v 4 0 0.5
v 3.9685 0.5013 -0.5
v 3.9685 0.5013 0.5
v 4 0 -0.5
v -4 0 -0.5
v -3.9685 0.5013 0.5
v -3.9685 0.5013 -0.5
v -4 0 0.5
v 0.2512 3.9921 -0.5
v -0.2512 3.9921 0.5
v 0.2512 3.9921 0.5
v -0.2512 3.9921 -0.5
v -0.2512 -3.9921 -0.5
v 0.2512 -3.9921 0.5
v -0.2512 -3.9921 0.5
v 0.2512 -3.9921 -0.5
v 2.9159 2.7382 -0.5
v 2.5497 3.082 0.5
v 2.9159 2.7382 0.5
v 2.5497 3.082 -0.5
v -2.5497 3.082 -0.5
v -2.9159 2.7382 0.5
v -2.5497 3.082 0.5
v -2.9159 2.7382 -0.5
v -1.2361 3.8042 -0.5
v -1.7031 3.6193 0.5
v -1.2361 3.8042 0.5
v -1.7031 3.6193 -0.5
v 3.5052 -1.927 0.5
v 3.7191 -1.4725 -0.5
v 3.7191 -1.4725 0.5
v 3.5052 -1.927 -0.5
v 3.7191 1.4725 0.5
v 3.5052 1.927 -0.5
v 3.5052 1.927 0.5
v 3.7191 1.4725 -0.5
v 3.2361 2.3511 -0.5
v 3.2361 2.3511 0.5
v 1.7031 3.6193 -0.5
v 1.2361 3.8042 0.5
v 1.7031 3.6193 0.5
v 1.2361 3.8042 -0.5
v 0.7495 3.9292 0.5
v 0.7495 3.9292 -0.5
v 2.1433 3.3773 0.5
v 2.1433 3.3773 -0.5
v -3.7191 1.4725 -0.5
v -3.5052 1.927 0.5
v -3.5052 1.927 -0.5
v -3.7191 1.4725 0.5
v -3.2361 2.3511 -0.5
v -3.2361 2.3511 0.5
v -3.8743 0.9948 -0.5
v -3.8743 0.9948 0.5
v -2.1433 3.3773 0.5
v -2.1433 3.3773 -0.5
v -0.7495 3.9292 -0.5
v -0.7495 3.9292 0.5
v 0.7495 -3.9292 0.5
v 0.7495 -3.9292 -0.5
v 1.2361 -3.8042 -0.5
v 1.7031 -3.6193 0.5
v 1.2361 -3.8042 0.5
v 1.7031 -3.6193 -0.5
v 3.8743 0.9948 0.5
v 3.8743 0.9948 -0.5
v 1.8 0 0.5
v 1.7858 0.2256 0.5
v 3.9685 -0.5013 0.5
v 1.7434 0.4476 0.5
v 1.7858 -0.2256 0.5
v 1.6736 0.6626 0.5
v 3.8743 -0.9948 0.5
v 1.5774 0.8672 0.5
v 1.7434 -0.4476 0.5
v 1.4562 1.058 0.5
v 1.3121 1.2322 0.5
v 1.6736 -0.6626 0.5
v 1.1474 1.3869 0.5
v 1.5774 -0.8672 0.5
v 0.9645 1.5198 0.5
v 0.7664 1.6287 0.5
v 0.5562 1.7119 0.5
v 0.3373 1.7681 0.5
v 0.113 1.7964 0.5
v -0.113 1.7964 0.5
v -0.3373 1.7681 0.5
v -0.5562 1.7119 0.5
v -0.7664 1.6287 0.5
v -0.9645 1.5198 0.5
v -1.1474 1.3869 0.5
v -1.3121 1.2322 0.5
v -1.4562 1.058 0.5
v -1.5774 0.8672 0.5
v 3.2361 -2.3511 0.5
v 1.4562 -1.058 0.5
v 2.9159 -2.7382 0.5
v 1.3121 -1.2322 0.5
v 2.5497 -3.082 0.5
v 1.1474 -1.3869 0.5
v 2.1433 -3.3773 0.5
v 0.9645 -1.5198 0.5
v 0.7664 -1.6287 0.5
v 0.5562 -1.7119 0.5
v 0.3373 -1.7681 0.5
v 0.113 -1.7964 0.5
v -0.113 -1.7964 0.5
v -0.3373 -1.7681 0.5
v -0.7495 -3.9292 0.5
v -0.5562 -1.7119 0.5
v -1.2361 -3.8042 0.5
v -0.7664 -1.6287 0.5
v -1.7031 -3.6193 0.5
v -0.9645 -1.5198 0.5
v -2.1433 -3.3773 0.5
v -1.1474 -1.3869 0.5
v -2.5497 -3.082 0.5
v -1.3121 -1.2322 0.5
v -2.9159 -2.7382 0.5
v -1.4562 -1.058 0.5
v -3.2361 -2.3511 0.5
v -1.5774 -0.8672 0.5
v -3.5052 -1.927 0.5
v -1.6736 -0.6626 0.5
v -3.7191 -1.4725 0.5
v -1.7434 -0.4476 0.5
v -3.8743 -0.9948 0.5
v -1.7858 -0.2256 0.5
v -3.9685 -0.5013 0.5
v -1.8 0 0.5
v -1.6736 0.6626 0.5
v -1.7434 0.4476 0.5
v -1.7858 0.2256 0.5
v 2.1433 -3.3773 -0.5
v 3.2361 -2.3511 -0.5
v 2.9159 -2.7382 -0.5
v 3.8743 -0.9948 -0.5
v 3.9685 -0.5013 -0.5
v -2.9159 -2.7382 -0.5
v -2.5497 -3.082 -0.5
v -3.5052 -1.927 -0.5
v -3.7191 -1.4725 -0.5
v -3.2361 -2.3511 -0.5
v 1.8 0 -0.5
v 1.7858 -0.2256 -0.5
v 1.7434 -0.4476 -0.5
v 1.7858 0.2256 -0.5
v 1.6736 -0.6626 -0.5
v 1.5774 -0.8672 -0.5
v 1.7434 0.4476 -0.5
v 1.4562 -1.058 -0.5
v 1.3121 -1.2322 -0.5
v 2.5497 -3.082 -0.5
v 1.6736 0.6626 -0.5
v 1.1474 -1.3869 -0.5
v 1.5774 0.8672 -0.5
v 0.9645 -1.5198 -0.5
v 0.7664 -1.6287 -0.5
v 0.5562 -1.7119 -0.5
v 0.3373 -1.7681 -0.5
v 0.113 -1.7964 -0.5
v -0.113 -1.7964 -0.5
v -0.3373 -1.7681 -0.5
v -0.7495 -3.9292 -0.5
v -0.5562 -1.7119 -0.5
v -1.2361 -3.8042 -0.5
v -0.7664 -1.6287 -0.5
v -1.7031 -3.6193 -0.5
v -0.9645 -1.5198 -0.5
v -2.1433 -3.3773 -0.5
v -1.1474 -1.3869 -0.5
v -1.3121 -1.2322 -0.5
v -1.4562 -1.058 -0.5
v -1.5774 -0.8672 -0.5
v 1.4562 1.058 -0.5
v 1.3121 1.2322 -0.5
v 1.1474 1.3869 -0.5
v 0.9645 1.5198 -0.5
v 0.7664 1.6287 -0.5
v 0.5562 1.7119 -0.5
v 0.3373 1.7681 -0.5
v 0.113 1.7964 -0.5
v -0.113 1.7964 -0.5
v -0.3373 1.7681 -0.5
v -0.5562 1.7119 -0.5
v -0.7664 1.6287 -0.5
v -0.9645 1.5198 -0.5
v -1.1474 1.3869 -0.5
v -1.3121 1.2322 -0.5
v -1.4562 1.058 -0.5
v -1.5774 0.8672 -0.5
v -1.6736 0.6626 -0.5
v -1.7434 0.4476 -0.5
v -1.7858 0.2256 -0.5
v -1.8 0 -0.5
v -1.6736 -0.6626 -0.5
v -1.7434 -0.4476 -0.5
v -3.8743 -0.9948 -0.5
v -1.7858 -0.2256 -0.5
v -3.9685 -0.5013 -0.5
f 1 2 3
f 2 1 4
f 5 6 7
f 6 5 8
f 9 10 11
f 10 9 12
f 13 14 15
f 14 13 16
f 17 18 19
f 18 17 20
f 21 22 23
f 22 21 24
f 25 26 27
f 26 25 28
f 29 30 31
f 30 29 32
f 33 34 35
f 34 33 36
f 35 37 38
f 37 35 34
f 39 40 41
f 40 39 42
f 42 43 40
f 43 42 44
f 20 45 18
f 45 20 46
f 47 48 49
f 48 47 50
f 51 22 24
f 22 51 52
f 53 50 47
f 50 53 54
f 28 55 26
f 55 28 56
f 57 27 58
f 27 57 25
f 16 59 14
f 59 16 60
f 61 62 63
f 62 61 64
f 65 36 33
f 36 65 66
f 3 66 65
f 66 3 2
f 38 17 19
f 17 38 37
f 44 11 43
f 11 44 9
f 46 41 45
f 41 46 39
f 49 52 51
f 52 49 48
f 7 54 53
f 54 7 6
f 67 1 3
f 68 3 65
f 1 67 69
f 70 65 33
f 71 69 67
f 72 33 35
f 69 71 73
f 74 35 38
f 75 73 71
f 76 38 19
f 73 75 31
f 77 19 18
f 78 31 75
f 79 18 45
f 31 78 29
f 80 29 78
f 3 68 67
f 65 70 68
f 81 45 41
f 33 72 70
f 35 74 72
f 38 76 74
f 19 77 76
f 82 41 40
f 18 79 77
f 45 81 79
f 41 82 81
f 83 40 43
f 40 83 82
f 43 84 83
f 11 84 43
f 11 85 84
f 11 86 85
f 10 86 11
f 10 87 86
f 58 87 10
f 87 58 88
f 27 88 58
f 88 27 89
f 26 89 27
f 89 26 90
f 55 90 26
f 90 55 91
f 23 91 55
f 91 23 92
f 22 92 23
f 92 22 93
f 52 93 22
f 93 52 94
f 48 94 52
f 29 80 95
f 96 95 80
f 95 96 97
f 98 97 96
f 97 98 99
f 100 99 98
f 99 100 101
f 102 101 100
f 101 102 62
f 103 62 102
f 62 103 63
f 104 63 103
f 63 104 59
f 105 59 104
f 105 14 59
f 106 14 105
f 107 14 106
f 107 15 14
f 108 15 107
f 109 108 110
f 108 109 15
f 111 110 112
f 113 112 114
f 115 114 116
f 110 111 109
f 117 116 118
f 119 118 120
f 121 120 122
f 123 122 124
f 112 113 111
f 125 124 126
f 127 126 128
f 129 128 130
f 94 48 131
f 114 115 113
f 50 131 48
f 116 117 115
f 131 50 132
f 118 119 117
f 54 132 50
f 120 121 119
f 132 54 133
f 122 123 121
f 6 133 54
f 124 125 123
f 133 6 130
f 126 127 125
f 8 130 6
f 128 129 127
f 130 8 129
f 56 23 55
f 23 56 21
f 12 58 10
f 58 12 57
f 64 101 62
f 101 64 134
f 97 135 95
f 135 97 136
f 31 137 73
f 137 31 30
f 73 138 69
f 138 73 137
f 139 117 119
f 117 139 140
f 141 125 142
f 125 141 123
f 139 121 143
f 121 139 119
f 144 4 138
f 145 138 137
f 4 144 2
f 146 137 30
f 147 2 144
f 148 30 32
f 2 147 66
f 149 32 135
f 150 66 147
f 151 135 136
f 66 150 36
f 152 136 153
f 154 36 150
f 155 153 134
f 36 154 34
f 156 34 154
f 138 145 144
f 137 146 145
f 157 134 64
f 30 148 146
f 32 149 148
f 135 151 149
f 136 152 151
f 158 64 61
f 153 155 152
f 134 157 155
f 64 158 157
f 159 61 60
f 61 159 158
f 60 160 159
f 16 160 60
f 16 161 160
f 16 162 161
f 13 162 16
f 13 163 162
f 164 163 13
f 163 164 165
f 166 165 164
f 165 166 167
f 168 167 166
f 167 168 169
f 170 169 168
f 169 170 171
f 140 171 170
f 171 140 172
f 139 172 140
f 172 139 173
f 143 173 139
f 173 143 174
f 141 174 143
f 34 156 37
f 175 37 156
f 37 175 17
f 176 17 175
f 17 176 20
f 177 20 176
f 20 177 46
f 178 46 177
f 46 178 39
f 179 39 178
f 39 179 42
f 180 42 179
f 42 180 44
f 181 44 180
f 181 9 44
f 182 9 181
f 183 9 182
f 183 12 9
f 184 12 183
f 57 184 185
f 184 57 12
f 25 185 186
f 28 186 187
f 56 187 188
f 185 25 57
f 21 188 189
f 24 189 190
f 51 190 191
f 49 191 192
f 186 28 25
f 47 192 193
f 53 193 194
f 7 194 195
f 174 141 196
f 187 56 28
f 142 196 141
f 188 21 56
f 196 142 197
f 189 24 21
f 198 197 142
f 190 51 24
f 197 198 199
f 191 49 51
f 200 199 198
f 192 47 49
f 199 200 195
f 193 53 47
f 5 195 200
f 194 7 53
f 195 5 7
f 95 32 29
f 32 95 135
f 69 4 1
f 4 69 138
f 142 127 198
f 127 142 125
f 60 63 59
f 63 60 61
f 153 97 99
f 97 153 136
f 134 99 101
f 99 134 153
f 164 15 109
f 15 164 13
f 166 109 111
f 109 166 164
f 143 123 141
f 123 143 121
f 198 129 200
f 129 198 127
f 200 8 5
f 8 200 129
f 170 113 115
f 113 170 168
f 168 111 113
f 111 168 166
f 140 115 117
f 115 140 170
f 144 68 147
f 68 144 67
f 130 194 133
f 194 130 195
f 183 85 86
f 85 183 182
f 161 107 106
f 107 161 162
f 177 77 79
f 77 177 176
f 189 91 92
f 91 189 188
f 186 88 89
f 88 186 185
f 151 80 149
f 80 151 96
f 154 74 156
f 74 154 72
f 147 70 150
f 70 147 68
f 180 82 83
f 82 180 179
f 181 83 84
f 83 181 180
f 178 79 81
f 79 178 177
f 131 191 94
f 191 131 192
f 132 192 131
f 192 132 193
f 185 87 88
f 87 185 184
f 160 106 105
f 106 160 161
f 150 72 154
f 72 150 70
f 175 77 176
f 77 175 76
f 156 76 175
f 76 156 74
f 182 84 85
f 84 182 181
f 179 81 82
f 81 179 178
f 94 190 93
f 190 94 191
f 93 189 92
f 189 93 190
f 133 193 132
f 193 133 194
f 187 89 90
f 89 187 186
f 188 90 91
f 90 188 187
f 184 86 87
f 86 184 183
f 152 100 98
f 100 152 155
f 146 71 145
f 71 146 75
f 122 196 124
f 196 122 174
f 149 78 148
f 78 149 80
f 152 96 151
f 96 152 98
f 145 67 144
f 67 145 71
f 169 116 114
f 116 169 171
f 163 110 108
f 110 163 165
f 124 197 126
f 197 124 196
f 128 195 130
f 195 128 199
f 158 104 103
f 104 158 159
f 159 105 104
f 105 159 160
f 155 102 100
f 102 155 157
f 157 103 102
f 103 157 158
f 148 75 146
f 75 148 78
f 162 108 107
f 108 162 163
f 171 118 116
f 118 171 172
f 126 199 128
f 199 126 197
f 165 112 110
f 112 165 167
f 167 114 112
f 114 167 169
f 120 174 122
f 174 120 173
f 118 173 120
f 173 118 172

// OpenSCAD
$fn = 50;


difference() {
	union() {
		translate(v = [0, 0, -0.5000000000]) {
			cylinder(h = 1, r = 4.0000000000);
		}
	}
	union() {
		translate(v = [0, 0, -100.0000000000]) {
			cylinder(h = 200, r = 1.8000000000);
		}
	}
}
